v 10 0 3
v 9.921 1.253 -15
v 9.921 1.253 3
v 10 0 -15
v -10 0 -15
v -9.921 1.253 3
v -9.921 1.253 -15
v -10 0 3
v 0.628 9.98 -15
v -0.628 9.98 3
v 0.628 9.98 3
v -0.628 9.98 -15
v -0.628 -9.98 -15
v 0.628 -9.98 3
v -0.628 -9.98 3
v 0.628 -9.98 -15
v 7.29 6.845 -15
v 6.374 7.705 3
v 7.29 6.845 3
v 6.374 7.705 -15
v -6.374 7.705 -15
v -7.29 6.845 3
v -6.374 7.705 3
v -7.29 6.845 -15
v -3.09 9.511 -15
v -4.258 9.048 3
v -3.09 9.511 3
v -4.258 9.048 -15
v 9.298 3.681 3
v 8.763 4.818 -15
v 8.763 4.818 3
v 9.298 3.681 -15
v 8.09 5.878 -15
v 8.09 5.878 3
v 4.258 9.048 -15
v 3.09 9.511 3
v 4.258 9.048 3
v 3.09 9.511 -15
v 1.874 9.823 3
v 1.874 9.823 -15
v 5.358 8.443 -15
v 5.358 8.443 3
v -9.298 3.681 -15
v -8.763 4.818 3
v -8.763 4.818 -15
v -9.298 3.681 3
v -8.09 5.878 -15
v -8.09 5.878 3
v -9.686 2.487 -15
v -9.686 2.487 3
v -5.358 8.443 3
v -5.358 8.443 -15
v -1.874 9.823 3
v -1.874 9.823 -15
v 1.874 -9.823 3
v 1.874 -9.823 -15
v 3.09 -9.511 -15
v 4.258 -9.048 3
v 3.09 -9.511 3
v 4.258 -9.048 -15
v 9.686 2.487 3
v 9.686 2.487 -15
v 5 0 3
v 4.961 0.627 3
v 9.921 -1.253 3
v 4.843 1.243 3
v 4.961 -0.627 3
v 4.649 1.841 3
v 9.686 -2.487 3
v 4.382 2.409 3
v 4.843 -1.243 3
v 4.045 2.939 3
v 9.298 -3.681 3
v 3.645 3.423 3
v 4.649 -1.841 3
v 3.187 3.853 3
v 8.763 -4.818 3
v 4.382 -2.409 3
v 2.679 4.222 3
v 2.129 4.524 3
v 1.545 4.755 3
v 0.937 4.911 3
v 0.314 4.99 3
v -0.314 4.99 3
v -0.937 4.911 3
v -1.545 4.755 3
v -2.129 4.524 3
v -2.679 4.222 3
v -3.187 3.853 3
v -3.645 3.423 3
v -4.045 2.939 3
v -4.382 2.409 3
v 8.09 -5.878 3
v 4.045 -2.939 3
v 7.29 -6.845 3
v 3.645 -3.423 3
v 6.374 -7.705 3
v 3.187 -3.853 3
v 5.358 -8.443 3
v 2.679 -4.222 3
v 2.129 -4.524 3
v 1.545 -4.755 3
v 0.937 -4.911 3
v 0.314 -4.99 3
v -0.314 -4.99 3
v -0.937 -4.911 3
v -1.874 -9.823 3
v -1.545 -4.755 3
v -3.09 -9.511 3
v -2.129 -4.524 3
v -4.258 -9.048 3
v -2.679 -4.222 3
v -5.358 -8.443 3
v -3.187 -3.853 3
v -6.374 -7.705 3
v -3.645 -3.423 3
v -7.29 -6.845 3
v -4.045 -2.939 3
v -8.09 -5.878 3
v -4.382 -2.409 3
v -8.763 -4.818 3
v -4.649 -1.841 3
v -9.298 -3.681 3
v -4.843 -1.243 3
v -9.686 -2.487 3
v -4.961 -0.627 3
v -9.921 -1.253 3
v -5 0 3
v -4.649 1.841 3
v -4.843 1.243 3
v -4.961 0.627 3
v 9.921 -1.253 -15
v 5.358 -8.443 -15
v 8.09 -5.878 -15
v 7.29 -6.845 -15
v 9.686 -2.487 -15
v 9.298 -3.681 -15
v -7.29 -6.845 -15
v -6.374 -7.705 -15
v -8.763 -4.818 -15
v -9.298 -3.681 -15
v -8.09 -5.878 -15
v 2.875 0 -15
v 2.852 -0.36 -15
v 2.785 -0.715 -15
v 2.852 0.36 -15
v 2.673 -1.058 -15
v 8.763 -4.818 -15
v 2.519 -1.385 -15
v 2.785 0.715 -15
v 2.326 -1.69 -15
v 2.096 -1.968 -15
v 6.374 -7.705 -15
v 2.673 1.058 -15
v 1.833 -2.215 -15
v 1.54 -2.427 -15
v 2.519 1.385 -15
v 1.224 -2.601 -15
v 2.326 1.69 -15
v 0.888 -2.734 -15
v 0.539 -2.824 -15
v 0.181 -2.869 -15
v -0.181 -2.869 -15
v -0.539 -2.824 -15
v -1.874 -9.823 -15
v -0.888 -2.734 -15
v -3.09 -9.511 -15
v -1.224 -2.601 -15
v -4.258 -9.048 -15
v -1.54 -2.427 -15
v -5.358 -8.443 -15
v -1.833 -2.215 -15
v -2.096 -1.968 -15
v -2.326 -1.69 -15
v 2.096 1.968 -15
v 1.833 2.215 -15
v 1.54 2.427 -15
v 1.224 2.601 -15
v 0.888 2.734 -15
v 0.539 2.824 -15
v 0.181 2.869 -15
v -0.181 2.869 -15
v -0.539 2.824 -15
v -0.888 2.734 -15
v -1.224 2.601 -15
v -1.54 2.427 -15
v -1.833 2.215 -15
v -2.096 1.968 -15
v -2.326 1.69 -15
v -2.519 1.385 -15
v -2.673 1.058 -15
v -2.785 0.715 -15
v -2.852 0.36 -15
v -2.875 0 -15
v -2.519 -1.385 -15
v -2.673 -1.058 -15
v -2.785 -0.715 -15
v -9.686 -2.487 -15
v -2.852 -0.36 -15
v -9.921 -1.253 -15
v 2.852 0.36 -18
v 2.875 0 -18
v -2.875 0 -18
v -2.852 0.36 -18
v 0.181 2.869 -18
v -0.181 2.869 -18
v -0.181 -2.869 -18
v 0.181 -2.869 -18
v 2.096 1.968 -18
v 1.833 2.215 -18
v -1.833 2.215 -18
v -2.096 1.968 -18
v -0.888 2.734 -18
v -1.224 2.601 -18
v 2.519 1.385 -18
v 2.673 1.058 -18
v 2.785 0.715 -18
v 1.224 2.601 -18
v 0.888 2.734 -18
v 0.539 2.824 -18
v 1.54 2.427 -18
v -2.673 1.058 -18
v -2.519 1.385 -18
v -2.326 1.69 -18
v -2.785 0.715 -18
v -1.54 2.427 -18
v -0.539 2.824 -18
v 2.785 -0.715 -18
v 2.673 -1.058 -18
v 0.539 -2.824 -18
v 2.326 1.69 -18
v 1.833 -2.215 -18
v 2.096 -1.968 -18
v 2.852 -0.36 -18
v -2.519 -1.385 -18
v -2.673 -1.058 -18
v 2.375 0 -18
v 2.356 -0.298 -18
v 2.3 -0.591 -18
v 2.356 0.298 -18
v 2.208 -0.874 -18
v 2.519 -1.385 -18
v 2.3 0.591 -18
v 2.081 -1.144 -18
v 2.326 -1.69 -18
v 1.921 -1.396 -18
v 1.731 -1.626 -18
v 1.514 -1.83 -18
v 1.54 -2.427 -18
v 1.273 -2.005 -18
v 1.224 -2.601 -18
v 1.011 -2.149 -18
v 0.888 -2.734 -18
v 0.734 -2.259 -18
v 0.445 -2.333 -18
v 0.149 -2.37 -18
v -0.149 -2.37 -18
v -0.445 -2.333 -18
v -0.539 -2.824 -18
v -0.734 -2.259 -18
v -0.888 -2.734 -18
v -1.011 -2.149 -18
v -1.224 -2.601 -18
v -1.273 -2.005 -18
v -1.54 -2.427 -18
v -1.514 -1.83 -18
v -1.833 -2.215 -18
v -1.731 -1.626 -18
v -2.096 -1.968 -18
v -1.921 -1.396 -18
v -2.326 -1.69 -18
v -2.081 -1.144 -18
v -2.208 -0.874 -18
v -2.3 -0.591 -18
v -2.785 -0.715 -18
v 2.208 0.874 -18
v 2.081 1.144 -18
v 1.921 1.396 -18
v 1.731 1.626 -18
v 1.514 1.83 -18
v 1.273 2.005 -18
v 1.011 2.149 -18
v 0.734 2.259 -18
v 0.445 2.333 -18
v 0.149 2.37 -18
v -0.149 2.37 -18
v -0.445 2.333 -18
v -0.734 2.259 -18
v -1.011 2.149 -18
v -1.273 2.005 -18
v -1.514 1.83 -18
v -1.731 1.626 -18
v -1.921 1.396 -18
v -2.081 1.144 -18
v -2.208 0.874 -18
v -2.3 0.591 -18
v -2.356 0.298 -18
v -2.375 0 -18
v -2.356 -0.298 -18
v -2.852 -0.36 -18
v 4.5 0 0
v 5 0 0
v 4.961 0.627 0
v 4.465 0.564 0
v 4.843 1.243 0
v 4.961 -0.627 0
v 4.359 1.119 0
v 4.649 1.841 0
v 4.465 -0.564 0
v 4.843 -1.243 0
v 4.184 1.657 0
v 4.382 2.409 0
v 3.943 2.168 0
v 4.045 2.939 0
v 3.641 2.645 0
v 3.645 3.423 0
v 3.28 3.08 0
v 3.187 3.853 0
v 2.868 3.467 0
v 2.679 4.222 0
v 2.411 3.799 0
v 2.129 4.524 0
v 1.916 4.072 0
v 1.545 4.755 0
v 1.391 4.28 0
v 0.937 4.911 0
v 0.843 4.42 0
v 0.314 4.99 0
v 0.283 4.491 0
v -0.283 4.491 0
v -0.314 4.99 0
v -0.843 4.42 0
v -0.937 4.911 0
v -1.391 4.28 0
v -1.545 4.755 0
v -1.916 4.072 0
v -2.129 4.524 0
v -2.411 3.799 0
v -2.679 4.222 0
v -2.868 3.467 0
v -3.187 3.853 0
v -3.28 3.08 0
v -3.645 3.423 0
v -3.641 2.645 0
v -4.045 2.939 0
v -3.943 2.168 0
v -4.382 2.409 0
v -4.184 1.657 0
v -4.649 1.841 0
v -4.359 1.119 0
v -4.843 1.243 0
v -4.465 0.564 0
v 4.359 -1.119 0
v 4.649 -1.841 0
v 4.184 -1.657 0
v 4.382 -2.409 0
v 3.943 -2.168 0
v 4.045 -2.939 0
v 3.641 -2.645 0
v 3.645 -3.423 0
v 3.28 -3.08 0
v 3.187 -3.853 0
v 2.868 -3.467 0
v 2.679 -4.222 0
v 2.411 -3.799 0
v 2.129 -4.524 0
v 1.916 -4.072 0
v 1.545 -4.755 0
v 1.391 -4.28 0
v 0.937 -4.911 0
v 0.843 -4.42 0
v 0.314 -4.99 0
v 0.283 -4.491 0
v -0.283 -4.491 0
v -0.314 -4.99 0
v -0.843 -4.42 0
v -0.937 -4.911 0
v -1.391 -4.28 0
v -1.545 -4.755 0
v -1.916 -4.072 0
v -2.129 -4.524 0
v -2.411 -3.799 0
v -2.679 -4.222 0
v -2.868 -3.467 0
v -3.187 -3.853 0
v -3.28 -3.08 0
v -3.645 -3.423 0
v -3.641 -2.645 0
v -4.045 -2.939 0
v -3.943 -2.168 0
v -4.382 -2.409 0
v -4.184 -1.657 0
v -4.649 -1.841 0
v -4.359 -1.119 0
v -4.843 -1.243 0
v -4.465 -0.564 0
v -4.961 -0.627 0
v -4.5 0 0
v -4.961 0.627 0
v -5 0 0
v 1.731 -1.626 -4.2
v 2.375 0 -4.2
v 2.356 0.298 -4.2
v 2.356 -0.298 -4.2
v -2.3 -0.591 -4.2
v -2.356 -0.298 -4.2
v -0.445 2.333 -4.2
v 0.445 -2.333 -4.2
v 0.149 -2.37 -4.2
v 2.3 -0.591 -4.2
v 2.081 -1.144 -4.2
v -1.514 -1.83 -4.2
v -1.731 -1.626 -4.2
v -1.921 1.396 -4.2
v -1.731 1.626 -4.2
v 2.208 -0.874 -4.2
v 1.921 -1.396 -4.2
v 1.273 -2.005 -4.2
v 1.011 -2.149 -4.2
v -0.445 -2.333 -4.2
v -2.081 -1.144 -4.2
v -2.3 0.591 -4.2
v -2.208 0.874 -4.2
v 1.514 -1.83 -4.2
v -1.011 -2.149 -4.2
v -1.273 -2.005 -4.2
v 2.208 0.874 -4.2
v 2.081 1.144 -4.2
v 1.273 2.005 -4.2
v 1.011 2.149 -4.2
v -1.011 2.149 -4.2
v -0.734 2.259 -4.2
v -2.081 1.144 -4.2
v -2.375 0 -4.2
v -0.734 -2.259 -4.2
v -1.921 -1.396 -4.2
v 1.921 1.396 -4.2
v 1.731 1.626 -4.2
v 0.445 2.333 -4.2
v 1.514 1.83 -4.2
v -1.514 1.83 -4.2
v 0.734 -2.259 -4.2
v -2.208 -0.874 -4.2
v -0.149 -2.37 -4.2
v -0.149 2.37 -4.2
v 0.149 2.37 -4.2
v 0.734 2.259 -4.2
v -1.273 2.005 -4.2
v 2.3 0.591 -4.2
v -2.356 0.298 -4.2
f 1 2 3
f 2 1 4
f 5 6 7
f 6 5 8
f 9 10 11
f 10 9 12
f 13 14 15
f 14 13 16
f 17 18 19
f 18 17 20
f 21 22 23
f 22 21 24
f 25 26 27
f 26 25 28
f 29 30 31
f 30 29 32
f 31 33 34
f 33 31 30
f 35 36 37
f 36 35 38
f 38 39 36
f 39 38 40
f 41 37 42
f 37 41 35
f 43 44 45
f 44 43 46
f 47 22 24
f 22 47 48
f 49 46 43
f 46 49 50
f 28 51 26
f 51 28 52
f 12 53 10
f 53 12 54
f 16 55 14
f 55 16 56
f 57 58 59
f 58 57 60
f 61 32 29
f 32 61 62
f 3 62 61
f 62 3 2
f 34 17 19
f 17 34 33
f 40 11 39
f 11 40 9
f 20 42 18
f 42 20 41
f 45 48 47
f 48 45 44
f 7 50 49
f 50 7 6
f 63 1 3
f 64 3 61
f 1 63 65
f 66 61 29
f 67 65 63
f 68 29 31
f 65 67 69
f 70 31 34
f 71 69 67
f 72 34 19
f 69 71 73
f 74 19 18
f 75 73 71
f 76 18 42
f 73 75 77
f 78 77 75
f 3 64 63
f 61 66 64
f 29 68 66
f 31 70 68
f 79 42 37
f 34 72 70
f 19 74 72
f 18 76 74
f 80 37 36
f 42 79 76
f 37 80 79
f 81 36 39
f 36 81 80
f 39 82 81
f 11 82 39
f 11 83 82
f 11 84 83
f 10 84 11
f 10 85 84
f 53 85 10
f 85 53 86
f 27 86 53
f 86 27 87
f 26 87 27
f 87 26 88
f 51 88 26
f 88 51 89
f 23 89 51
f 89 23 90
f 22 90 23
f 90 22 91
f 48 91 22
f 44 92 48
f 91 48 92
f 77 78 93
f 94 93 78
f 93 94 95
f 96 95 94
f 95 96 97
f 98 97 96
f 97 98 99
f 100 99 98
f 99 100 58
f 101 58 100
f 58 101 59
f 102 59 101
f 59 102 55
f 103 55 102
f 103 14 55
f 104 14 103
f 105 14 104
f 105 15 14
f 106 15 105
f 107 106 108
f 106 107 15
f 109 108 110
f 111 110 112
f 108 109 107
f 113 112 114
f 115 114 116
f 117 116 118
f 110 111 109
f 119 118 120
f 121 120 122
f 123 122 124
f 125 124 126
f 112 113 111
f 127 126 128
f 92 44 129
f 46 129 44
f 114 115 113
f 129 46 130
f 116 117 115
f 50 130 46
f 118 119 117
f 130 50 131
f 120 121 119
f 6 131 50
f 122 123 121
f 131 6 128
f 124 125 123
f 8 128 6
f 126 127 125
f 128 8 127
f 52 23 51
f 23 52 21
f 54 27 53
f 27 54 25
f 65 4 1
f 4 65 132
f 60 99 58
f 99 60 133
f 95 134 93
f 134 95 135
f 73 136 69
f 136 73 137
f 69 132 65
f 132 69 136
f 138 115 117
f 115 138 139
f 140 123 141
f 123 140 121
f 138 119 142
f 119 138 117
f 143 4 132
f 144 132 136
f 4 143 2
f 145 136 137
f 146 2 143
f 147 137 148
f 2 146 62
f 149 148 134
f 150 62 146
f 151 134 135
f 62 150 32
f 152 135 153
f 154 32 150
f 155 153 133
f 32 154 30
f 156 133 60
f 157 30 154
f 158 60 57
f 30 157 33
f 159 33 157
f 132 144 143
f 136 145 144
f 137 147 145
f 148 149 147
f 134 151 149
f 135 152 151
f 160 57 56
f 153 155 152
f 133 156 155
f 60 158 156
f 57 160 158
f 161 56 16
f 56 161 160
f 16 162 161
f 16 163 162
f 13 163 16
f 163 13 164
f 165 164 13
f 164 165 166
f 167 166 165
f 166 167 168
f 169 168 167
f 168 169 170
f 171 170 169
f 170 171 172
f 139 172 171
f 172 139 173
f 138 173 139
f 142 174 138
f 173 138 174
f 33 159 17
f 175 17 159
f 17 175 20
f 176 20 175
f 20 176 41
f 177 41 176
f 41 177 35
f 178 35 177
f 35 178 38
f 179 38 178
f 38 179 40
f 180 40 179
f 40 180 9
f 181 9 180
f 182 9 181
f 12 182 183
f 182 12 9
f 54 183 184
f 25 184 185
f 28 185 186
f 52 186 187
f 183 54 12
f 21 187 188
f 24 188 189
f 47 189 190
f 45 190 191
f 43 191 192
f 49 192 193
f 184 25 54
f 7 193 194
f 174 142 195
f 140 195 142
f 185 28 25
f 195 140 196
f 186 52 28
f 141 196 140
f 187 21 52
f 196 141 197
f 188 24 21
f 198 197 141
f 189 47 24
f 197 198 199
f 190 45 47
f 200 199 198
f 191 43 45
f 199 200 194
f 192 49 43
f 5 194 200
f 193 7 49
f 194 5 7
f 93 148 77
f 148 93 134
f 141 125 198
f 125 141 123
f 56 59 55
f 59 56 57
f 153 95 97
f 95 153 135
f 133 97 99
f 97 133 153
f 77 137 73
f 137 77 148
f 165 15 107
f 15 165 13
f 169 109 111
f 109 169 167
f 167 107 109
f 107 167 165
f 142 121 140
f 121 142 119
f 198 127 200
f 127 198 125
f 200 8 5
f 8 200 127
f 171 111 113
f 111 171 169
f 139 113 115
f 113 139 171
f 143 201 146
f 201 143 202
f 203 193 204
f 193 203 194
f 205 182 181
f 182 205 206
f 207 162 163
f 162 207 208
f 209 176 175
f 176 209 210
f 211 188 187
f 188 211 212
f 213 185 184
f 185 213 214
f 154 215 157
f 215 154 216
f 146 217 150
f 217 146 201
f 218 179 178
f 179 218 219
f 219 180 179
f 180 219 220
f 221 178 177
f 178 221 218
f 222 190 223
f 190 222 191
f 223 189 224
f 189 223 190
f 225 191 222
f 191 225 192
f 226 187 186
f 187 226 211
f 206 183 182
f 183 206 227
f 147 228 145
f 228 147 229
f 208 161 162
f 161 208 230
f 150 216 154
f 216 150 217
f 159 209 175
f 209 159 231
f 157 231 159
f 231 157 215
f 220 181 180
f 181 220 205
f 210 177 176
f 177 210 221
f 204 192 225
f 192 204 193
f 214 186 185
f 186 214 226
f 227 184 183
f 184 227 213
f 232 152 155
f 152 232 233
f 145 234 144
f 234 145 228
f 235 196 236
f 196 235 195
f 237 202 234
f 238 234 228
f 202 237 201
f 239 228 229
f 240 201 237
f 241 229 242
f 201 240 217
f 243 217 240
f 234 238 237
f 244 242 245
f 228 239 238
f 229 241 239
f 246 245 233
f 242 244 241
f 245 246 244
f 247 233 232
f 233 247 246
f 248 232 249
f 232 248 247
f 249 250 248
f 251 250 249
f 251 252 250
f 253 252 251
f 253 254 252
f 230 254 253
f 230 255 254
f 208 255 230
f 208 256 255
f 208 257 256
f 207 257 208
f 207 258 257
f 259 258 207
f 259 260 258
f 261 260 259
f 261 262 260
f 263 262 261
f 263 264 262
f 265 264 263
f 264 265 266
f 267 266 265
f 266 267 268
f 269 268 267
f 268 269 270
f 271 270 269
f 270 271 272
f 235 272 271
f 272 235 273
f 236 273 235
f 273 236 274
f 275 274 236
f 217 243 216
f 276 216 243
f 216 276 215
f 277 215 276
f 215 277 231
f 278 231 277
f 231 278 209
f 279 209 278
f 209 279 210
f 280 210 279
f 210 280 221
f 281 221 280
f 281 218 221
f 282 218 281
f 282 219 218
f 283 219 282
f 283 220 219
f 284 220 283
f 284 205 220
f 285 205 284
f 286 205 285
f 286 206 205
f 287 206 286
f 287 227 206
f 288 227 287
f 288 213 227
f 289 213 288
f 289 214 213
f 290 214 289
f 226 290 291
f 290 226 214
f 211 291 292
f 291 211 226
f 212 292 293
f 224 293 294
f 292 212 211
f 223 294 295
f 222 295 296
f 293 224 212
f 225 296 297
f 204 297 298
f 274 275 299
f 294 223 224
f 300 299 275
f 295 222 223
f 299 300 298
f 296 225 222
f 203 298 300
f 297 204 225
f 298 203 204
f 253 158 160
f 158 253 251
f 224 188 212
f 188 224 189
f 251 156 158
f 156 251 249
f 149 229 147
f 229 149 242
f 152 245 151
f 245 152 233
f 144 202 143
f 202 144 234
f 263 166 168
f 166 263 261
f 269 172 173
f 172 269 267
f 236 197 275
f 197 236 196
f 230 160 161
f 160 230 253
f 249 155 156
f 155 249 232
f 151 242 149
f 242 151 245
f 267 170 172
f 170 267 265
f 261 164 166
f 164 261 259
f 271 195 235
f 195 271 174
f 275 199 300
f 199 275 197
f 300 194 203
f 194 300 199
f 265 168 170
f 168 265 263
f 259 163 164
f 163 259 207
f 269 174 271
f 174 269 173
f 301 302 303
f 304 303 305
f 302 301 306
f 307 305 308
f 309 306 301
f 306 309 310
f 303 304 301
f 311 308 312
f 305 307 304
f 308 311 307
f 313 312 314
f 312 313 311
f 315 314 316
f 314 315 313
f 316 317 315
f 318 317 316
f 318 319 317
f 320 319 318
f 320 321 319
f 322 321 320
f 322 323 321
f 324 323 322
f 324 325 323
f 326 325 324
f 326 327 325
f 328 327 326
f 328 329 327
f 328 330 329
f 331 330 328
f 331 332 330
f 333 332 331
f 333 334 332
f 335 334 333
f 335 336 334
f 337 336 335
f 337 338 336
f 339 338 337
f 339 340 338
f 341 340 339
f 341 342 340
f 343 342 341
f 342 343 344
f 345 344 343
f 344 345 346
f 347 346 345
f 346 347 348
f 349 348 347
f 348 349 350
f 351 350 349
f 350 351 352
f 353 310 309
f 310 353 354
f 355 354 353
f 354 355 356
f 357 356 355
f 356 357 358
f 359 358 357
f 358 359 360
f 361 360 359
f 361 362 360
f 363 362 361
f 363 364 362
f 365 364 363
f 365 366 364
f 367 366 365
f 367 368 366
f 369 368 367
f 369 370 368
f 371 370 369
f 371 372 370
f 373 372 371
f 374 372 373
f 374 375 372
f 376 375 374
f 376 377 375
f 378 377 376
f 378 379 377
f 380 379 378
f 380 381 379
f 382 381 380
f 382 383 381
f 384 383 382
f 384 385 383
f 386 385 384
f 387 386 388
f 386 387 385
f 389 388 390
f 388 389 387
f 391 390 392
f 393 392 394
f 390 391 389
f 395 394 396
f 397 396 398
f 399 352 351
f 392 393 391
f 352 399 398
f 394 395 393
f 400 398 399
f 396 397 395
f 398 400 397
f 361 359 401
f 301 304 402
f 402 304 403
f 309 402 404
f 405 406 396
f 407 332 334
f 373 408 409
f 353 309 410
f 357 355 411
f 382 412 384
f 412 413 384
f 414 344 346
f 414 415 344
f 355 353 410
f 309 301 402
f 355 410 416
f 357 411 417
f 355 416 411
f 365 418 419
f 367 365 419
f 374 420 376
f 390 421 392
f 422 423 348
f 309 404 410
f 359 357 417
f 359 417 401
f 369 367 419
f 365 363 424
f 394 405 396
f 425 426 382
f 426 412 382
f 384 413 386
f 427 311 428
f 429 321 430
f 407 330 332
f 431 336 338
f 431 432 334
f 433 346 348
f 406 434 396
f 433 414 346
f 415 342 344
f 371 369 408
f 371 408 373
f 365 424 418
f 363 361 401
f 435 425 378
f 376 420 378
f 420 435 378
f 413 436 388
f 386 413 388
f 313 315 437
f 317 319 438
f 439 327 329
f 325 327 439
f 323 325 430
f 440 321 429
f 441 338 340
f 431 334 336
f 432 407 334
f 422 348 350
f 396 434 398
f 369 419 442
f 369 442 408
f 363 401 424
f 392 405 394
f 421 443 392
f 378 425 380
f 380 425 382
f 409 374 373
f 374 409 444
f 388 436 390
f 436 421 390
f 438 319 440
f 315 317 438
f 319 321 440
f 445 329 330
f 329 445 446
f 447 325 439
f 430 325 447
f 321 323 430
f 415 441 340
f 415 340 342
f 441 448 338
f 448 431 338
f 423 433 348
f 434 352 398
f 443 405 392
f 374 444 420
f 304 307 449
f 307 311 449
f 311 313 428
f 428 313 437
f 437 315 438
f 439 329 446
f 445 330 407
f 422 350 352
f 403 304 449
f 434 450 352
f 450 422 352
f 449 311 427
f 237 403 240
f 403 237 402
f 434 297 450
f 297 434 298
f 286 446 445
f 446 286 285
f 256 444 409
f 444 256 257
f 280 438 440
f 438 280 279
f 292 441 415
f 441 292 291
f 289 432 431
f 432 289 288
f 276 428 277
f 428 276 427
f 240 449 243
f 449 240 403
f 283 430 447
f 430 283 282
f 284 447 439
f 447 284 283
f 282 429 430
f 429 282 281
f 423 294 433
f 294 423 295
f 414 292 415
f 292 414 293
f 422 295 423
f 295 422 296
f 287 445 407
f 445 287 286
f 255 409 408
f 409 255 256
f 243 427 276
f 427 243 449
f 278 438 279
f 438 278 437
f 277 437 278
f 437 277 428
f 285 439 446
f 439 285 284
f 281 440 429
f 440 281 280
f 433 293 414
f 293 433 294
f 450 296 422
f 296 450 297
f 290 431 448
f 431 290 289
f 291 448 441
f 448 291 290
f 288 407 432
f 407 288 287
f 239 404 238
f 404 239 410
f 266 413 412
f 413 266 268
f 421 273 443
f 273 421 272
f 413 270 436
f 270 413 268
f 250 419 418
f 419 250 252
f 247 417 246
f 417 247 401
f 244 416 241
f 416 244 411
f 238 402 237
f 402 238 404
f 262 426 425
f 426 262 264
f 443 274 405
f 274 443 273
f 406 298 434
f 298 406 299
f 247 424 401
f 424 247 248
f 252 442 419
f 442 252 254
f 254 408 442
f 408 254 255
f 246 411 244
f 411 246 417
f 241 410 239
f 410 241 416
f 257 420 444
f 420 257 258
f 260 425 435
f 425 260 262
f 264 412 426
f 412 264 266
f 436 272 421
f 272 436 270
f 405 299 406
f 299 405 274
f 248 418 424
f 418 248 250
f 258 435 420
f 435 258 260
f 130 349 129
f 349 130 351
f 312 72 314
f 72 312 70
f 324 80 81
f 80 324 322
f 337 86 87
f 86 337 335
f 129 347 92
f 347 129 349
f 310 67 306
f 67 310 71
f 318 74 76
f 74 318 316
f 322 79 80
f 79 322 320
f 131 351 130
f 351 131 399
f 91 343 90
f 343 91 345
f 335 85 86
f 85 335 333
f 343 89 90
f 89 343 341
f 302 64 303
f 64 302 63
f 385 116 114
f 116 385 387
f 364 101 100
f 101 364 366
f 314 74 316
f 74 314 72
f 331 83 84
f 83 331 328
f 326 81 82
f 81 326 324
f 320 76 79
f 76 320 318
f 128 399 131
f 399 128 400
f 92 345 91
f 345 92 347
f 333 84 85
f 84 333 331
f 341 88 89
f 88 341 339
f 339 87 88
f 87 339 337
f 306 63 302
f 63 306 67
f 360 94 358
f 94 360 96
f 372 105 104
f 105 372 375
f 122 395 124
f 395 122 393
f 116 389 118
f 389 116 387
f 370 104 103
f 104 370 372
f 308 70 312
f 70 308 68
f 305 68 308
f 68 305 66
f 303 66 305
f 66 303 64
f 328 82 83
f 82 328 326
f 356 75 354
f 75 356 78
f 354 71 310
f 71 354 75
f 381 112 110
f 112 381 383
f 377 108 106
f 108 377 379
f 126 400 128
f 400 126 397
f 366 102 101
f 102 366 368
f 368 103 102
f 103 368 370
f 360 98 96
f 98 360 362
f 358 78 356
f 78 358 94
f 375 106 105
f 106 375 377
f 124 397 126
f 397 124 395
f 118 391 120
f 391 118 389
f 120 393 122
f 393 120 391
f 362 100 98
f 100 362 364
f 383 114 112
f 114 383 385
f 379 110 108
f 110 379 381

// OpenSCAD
$fn = 50;


difference() {
	union() {
		translate(v = [0, 0, -15.0000000000]) {
			cylinder(h = 18, r = 10.0000000000);
		}
		#translate(v = [0, 0, -18.0000000000]) {
			cylinder(h = 18, r = 2.8750000000);
		}
	}
	union() {
		translate(v = [0, 0, 0]) {
			rotate(a = [0, 0, 0]) {
				difference() {
					union() {
						translate(v = [0, 0, -18.0000000000]) {
							cylinder(h = 18, r = 2.2500000000);
						}
						translate(v = [0, 0, -4.2000000000]) {
							cylinder(h = 4.2000000000, r1 = 2.3750000000, r2 = 4.5000000000);
						}
						translate(v = [0, 0, -18.0000000000]) {
							cylinder(h = 18, r = 2.3750000000);
						}
						translate(v = [0, 0, -18.0000000000]) {
							cylinder(h = 18, r = 2.2500000000);
						}
					}
					union();
				}
			}
		}
		#cylinder(h = 3, r = 5.0000000000);
	}
}
